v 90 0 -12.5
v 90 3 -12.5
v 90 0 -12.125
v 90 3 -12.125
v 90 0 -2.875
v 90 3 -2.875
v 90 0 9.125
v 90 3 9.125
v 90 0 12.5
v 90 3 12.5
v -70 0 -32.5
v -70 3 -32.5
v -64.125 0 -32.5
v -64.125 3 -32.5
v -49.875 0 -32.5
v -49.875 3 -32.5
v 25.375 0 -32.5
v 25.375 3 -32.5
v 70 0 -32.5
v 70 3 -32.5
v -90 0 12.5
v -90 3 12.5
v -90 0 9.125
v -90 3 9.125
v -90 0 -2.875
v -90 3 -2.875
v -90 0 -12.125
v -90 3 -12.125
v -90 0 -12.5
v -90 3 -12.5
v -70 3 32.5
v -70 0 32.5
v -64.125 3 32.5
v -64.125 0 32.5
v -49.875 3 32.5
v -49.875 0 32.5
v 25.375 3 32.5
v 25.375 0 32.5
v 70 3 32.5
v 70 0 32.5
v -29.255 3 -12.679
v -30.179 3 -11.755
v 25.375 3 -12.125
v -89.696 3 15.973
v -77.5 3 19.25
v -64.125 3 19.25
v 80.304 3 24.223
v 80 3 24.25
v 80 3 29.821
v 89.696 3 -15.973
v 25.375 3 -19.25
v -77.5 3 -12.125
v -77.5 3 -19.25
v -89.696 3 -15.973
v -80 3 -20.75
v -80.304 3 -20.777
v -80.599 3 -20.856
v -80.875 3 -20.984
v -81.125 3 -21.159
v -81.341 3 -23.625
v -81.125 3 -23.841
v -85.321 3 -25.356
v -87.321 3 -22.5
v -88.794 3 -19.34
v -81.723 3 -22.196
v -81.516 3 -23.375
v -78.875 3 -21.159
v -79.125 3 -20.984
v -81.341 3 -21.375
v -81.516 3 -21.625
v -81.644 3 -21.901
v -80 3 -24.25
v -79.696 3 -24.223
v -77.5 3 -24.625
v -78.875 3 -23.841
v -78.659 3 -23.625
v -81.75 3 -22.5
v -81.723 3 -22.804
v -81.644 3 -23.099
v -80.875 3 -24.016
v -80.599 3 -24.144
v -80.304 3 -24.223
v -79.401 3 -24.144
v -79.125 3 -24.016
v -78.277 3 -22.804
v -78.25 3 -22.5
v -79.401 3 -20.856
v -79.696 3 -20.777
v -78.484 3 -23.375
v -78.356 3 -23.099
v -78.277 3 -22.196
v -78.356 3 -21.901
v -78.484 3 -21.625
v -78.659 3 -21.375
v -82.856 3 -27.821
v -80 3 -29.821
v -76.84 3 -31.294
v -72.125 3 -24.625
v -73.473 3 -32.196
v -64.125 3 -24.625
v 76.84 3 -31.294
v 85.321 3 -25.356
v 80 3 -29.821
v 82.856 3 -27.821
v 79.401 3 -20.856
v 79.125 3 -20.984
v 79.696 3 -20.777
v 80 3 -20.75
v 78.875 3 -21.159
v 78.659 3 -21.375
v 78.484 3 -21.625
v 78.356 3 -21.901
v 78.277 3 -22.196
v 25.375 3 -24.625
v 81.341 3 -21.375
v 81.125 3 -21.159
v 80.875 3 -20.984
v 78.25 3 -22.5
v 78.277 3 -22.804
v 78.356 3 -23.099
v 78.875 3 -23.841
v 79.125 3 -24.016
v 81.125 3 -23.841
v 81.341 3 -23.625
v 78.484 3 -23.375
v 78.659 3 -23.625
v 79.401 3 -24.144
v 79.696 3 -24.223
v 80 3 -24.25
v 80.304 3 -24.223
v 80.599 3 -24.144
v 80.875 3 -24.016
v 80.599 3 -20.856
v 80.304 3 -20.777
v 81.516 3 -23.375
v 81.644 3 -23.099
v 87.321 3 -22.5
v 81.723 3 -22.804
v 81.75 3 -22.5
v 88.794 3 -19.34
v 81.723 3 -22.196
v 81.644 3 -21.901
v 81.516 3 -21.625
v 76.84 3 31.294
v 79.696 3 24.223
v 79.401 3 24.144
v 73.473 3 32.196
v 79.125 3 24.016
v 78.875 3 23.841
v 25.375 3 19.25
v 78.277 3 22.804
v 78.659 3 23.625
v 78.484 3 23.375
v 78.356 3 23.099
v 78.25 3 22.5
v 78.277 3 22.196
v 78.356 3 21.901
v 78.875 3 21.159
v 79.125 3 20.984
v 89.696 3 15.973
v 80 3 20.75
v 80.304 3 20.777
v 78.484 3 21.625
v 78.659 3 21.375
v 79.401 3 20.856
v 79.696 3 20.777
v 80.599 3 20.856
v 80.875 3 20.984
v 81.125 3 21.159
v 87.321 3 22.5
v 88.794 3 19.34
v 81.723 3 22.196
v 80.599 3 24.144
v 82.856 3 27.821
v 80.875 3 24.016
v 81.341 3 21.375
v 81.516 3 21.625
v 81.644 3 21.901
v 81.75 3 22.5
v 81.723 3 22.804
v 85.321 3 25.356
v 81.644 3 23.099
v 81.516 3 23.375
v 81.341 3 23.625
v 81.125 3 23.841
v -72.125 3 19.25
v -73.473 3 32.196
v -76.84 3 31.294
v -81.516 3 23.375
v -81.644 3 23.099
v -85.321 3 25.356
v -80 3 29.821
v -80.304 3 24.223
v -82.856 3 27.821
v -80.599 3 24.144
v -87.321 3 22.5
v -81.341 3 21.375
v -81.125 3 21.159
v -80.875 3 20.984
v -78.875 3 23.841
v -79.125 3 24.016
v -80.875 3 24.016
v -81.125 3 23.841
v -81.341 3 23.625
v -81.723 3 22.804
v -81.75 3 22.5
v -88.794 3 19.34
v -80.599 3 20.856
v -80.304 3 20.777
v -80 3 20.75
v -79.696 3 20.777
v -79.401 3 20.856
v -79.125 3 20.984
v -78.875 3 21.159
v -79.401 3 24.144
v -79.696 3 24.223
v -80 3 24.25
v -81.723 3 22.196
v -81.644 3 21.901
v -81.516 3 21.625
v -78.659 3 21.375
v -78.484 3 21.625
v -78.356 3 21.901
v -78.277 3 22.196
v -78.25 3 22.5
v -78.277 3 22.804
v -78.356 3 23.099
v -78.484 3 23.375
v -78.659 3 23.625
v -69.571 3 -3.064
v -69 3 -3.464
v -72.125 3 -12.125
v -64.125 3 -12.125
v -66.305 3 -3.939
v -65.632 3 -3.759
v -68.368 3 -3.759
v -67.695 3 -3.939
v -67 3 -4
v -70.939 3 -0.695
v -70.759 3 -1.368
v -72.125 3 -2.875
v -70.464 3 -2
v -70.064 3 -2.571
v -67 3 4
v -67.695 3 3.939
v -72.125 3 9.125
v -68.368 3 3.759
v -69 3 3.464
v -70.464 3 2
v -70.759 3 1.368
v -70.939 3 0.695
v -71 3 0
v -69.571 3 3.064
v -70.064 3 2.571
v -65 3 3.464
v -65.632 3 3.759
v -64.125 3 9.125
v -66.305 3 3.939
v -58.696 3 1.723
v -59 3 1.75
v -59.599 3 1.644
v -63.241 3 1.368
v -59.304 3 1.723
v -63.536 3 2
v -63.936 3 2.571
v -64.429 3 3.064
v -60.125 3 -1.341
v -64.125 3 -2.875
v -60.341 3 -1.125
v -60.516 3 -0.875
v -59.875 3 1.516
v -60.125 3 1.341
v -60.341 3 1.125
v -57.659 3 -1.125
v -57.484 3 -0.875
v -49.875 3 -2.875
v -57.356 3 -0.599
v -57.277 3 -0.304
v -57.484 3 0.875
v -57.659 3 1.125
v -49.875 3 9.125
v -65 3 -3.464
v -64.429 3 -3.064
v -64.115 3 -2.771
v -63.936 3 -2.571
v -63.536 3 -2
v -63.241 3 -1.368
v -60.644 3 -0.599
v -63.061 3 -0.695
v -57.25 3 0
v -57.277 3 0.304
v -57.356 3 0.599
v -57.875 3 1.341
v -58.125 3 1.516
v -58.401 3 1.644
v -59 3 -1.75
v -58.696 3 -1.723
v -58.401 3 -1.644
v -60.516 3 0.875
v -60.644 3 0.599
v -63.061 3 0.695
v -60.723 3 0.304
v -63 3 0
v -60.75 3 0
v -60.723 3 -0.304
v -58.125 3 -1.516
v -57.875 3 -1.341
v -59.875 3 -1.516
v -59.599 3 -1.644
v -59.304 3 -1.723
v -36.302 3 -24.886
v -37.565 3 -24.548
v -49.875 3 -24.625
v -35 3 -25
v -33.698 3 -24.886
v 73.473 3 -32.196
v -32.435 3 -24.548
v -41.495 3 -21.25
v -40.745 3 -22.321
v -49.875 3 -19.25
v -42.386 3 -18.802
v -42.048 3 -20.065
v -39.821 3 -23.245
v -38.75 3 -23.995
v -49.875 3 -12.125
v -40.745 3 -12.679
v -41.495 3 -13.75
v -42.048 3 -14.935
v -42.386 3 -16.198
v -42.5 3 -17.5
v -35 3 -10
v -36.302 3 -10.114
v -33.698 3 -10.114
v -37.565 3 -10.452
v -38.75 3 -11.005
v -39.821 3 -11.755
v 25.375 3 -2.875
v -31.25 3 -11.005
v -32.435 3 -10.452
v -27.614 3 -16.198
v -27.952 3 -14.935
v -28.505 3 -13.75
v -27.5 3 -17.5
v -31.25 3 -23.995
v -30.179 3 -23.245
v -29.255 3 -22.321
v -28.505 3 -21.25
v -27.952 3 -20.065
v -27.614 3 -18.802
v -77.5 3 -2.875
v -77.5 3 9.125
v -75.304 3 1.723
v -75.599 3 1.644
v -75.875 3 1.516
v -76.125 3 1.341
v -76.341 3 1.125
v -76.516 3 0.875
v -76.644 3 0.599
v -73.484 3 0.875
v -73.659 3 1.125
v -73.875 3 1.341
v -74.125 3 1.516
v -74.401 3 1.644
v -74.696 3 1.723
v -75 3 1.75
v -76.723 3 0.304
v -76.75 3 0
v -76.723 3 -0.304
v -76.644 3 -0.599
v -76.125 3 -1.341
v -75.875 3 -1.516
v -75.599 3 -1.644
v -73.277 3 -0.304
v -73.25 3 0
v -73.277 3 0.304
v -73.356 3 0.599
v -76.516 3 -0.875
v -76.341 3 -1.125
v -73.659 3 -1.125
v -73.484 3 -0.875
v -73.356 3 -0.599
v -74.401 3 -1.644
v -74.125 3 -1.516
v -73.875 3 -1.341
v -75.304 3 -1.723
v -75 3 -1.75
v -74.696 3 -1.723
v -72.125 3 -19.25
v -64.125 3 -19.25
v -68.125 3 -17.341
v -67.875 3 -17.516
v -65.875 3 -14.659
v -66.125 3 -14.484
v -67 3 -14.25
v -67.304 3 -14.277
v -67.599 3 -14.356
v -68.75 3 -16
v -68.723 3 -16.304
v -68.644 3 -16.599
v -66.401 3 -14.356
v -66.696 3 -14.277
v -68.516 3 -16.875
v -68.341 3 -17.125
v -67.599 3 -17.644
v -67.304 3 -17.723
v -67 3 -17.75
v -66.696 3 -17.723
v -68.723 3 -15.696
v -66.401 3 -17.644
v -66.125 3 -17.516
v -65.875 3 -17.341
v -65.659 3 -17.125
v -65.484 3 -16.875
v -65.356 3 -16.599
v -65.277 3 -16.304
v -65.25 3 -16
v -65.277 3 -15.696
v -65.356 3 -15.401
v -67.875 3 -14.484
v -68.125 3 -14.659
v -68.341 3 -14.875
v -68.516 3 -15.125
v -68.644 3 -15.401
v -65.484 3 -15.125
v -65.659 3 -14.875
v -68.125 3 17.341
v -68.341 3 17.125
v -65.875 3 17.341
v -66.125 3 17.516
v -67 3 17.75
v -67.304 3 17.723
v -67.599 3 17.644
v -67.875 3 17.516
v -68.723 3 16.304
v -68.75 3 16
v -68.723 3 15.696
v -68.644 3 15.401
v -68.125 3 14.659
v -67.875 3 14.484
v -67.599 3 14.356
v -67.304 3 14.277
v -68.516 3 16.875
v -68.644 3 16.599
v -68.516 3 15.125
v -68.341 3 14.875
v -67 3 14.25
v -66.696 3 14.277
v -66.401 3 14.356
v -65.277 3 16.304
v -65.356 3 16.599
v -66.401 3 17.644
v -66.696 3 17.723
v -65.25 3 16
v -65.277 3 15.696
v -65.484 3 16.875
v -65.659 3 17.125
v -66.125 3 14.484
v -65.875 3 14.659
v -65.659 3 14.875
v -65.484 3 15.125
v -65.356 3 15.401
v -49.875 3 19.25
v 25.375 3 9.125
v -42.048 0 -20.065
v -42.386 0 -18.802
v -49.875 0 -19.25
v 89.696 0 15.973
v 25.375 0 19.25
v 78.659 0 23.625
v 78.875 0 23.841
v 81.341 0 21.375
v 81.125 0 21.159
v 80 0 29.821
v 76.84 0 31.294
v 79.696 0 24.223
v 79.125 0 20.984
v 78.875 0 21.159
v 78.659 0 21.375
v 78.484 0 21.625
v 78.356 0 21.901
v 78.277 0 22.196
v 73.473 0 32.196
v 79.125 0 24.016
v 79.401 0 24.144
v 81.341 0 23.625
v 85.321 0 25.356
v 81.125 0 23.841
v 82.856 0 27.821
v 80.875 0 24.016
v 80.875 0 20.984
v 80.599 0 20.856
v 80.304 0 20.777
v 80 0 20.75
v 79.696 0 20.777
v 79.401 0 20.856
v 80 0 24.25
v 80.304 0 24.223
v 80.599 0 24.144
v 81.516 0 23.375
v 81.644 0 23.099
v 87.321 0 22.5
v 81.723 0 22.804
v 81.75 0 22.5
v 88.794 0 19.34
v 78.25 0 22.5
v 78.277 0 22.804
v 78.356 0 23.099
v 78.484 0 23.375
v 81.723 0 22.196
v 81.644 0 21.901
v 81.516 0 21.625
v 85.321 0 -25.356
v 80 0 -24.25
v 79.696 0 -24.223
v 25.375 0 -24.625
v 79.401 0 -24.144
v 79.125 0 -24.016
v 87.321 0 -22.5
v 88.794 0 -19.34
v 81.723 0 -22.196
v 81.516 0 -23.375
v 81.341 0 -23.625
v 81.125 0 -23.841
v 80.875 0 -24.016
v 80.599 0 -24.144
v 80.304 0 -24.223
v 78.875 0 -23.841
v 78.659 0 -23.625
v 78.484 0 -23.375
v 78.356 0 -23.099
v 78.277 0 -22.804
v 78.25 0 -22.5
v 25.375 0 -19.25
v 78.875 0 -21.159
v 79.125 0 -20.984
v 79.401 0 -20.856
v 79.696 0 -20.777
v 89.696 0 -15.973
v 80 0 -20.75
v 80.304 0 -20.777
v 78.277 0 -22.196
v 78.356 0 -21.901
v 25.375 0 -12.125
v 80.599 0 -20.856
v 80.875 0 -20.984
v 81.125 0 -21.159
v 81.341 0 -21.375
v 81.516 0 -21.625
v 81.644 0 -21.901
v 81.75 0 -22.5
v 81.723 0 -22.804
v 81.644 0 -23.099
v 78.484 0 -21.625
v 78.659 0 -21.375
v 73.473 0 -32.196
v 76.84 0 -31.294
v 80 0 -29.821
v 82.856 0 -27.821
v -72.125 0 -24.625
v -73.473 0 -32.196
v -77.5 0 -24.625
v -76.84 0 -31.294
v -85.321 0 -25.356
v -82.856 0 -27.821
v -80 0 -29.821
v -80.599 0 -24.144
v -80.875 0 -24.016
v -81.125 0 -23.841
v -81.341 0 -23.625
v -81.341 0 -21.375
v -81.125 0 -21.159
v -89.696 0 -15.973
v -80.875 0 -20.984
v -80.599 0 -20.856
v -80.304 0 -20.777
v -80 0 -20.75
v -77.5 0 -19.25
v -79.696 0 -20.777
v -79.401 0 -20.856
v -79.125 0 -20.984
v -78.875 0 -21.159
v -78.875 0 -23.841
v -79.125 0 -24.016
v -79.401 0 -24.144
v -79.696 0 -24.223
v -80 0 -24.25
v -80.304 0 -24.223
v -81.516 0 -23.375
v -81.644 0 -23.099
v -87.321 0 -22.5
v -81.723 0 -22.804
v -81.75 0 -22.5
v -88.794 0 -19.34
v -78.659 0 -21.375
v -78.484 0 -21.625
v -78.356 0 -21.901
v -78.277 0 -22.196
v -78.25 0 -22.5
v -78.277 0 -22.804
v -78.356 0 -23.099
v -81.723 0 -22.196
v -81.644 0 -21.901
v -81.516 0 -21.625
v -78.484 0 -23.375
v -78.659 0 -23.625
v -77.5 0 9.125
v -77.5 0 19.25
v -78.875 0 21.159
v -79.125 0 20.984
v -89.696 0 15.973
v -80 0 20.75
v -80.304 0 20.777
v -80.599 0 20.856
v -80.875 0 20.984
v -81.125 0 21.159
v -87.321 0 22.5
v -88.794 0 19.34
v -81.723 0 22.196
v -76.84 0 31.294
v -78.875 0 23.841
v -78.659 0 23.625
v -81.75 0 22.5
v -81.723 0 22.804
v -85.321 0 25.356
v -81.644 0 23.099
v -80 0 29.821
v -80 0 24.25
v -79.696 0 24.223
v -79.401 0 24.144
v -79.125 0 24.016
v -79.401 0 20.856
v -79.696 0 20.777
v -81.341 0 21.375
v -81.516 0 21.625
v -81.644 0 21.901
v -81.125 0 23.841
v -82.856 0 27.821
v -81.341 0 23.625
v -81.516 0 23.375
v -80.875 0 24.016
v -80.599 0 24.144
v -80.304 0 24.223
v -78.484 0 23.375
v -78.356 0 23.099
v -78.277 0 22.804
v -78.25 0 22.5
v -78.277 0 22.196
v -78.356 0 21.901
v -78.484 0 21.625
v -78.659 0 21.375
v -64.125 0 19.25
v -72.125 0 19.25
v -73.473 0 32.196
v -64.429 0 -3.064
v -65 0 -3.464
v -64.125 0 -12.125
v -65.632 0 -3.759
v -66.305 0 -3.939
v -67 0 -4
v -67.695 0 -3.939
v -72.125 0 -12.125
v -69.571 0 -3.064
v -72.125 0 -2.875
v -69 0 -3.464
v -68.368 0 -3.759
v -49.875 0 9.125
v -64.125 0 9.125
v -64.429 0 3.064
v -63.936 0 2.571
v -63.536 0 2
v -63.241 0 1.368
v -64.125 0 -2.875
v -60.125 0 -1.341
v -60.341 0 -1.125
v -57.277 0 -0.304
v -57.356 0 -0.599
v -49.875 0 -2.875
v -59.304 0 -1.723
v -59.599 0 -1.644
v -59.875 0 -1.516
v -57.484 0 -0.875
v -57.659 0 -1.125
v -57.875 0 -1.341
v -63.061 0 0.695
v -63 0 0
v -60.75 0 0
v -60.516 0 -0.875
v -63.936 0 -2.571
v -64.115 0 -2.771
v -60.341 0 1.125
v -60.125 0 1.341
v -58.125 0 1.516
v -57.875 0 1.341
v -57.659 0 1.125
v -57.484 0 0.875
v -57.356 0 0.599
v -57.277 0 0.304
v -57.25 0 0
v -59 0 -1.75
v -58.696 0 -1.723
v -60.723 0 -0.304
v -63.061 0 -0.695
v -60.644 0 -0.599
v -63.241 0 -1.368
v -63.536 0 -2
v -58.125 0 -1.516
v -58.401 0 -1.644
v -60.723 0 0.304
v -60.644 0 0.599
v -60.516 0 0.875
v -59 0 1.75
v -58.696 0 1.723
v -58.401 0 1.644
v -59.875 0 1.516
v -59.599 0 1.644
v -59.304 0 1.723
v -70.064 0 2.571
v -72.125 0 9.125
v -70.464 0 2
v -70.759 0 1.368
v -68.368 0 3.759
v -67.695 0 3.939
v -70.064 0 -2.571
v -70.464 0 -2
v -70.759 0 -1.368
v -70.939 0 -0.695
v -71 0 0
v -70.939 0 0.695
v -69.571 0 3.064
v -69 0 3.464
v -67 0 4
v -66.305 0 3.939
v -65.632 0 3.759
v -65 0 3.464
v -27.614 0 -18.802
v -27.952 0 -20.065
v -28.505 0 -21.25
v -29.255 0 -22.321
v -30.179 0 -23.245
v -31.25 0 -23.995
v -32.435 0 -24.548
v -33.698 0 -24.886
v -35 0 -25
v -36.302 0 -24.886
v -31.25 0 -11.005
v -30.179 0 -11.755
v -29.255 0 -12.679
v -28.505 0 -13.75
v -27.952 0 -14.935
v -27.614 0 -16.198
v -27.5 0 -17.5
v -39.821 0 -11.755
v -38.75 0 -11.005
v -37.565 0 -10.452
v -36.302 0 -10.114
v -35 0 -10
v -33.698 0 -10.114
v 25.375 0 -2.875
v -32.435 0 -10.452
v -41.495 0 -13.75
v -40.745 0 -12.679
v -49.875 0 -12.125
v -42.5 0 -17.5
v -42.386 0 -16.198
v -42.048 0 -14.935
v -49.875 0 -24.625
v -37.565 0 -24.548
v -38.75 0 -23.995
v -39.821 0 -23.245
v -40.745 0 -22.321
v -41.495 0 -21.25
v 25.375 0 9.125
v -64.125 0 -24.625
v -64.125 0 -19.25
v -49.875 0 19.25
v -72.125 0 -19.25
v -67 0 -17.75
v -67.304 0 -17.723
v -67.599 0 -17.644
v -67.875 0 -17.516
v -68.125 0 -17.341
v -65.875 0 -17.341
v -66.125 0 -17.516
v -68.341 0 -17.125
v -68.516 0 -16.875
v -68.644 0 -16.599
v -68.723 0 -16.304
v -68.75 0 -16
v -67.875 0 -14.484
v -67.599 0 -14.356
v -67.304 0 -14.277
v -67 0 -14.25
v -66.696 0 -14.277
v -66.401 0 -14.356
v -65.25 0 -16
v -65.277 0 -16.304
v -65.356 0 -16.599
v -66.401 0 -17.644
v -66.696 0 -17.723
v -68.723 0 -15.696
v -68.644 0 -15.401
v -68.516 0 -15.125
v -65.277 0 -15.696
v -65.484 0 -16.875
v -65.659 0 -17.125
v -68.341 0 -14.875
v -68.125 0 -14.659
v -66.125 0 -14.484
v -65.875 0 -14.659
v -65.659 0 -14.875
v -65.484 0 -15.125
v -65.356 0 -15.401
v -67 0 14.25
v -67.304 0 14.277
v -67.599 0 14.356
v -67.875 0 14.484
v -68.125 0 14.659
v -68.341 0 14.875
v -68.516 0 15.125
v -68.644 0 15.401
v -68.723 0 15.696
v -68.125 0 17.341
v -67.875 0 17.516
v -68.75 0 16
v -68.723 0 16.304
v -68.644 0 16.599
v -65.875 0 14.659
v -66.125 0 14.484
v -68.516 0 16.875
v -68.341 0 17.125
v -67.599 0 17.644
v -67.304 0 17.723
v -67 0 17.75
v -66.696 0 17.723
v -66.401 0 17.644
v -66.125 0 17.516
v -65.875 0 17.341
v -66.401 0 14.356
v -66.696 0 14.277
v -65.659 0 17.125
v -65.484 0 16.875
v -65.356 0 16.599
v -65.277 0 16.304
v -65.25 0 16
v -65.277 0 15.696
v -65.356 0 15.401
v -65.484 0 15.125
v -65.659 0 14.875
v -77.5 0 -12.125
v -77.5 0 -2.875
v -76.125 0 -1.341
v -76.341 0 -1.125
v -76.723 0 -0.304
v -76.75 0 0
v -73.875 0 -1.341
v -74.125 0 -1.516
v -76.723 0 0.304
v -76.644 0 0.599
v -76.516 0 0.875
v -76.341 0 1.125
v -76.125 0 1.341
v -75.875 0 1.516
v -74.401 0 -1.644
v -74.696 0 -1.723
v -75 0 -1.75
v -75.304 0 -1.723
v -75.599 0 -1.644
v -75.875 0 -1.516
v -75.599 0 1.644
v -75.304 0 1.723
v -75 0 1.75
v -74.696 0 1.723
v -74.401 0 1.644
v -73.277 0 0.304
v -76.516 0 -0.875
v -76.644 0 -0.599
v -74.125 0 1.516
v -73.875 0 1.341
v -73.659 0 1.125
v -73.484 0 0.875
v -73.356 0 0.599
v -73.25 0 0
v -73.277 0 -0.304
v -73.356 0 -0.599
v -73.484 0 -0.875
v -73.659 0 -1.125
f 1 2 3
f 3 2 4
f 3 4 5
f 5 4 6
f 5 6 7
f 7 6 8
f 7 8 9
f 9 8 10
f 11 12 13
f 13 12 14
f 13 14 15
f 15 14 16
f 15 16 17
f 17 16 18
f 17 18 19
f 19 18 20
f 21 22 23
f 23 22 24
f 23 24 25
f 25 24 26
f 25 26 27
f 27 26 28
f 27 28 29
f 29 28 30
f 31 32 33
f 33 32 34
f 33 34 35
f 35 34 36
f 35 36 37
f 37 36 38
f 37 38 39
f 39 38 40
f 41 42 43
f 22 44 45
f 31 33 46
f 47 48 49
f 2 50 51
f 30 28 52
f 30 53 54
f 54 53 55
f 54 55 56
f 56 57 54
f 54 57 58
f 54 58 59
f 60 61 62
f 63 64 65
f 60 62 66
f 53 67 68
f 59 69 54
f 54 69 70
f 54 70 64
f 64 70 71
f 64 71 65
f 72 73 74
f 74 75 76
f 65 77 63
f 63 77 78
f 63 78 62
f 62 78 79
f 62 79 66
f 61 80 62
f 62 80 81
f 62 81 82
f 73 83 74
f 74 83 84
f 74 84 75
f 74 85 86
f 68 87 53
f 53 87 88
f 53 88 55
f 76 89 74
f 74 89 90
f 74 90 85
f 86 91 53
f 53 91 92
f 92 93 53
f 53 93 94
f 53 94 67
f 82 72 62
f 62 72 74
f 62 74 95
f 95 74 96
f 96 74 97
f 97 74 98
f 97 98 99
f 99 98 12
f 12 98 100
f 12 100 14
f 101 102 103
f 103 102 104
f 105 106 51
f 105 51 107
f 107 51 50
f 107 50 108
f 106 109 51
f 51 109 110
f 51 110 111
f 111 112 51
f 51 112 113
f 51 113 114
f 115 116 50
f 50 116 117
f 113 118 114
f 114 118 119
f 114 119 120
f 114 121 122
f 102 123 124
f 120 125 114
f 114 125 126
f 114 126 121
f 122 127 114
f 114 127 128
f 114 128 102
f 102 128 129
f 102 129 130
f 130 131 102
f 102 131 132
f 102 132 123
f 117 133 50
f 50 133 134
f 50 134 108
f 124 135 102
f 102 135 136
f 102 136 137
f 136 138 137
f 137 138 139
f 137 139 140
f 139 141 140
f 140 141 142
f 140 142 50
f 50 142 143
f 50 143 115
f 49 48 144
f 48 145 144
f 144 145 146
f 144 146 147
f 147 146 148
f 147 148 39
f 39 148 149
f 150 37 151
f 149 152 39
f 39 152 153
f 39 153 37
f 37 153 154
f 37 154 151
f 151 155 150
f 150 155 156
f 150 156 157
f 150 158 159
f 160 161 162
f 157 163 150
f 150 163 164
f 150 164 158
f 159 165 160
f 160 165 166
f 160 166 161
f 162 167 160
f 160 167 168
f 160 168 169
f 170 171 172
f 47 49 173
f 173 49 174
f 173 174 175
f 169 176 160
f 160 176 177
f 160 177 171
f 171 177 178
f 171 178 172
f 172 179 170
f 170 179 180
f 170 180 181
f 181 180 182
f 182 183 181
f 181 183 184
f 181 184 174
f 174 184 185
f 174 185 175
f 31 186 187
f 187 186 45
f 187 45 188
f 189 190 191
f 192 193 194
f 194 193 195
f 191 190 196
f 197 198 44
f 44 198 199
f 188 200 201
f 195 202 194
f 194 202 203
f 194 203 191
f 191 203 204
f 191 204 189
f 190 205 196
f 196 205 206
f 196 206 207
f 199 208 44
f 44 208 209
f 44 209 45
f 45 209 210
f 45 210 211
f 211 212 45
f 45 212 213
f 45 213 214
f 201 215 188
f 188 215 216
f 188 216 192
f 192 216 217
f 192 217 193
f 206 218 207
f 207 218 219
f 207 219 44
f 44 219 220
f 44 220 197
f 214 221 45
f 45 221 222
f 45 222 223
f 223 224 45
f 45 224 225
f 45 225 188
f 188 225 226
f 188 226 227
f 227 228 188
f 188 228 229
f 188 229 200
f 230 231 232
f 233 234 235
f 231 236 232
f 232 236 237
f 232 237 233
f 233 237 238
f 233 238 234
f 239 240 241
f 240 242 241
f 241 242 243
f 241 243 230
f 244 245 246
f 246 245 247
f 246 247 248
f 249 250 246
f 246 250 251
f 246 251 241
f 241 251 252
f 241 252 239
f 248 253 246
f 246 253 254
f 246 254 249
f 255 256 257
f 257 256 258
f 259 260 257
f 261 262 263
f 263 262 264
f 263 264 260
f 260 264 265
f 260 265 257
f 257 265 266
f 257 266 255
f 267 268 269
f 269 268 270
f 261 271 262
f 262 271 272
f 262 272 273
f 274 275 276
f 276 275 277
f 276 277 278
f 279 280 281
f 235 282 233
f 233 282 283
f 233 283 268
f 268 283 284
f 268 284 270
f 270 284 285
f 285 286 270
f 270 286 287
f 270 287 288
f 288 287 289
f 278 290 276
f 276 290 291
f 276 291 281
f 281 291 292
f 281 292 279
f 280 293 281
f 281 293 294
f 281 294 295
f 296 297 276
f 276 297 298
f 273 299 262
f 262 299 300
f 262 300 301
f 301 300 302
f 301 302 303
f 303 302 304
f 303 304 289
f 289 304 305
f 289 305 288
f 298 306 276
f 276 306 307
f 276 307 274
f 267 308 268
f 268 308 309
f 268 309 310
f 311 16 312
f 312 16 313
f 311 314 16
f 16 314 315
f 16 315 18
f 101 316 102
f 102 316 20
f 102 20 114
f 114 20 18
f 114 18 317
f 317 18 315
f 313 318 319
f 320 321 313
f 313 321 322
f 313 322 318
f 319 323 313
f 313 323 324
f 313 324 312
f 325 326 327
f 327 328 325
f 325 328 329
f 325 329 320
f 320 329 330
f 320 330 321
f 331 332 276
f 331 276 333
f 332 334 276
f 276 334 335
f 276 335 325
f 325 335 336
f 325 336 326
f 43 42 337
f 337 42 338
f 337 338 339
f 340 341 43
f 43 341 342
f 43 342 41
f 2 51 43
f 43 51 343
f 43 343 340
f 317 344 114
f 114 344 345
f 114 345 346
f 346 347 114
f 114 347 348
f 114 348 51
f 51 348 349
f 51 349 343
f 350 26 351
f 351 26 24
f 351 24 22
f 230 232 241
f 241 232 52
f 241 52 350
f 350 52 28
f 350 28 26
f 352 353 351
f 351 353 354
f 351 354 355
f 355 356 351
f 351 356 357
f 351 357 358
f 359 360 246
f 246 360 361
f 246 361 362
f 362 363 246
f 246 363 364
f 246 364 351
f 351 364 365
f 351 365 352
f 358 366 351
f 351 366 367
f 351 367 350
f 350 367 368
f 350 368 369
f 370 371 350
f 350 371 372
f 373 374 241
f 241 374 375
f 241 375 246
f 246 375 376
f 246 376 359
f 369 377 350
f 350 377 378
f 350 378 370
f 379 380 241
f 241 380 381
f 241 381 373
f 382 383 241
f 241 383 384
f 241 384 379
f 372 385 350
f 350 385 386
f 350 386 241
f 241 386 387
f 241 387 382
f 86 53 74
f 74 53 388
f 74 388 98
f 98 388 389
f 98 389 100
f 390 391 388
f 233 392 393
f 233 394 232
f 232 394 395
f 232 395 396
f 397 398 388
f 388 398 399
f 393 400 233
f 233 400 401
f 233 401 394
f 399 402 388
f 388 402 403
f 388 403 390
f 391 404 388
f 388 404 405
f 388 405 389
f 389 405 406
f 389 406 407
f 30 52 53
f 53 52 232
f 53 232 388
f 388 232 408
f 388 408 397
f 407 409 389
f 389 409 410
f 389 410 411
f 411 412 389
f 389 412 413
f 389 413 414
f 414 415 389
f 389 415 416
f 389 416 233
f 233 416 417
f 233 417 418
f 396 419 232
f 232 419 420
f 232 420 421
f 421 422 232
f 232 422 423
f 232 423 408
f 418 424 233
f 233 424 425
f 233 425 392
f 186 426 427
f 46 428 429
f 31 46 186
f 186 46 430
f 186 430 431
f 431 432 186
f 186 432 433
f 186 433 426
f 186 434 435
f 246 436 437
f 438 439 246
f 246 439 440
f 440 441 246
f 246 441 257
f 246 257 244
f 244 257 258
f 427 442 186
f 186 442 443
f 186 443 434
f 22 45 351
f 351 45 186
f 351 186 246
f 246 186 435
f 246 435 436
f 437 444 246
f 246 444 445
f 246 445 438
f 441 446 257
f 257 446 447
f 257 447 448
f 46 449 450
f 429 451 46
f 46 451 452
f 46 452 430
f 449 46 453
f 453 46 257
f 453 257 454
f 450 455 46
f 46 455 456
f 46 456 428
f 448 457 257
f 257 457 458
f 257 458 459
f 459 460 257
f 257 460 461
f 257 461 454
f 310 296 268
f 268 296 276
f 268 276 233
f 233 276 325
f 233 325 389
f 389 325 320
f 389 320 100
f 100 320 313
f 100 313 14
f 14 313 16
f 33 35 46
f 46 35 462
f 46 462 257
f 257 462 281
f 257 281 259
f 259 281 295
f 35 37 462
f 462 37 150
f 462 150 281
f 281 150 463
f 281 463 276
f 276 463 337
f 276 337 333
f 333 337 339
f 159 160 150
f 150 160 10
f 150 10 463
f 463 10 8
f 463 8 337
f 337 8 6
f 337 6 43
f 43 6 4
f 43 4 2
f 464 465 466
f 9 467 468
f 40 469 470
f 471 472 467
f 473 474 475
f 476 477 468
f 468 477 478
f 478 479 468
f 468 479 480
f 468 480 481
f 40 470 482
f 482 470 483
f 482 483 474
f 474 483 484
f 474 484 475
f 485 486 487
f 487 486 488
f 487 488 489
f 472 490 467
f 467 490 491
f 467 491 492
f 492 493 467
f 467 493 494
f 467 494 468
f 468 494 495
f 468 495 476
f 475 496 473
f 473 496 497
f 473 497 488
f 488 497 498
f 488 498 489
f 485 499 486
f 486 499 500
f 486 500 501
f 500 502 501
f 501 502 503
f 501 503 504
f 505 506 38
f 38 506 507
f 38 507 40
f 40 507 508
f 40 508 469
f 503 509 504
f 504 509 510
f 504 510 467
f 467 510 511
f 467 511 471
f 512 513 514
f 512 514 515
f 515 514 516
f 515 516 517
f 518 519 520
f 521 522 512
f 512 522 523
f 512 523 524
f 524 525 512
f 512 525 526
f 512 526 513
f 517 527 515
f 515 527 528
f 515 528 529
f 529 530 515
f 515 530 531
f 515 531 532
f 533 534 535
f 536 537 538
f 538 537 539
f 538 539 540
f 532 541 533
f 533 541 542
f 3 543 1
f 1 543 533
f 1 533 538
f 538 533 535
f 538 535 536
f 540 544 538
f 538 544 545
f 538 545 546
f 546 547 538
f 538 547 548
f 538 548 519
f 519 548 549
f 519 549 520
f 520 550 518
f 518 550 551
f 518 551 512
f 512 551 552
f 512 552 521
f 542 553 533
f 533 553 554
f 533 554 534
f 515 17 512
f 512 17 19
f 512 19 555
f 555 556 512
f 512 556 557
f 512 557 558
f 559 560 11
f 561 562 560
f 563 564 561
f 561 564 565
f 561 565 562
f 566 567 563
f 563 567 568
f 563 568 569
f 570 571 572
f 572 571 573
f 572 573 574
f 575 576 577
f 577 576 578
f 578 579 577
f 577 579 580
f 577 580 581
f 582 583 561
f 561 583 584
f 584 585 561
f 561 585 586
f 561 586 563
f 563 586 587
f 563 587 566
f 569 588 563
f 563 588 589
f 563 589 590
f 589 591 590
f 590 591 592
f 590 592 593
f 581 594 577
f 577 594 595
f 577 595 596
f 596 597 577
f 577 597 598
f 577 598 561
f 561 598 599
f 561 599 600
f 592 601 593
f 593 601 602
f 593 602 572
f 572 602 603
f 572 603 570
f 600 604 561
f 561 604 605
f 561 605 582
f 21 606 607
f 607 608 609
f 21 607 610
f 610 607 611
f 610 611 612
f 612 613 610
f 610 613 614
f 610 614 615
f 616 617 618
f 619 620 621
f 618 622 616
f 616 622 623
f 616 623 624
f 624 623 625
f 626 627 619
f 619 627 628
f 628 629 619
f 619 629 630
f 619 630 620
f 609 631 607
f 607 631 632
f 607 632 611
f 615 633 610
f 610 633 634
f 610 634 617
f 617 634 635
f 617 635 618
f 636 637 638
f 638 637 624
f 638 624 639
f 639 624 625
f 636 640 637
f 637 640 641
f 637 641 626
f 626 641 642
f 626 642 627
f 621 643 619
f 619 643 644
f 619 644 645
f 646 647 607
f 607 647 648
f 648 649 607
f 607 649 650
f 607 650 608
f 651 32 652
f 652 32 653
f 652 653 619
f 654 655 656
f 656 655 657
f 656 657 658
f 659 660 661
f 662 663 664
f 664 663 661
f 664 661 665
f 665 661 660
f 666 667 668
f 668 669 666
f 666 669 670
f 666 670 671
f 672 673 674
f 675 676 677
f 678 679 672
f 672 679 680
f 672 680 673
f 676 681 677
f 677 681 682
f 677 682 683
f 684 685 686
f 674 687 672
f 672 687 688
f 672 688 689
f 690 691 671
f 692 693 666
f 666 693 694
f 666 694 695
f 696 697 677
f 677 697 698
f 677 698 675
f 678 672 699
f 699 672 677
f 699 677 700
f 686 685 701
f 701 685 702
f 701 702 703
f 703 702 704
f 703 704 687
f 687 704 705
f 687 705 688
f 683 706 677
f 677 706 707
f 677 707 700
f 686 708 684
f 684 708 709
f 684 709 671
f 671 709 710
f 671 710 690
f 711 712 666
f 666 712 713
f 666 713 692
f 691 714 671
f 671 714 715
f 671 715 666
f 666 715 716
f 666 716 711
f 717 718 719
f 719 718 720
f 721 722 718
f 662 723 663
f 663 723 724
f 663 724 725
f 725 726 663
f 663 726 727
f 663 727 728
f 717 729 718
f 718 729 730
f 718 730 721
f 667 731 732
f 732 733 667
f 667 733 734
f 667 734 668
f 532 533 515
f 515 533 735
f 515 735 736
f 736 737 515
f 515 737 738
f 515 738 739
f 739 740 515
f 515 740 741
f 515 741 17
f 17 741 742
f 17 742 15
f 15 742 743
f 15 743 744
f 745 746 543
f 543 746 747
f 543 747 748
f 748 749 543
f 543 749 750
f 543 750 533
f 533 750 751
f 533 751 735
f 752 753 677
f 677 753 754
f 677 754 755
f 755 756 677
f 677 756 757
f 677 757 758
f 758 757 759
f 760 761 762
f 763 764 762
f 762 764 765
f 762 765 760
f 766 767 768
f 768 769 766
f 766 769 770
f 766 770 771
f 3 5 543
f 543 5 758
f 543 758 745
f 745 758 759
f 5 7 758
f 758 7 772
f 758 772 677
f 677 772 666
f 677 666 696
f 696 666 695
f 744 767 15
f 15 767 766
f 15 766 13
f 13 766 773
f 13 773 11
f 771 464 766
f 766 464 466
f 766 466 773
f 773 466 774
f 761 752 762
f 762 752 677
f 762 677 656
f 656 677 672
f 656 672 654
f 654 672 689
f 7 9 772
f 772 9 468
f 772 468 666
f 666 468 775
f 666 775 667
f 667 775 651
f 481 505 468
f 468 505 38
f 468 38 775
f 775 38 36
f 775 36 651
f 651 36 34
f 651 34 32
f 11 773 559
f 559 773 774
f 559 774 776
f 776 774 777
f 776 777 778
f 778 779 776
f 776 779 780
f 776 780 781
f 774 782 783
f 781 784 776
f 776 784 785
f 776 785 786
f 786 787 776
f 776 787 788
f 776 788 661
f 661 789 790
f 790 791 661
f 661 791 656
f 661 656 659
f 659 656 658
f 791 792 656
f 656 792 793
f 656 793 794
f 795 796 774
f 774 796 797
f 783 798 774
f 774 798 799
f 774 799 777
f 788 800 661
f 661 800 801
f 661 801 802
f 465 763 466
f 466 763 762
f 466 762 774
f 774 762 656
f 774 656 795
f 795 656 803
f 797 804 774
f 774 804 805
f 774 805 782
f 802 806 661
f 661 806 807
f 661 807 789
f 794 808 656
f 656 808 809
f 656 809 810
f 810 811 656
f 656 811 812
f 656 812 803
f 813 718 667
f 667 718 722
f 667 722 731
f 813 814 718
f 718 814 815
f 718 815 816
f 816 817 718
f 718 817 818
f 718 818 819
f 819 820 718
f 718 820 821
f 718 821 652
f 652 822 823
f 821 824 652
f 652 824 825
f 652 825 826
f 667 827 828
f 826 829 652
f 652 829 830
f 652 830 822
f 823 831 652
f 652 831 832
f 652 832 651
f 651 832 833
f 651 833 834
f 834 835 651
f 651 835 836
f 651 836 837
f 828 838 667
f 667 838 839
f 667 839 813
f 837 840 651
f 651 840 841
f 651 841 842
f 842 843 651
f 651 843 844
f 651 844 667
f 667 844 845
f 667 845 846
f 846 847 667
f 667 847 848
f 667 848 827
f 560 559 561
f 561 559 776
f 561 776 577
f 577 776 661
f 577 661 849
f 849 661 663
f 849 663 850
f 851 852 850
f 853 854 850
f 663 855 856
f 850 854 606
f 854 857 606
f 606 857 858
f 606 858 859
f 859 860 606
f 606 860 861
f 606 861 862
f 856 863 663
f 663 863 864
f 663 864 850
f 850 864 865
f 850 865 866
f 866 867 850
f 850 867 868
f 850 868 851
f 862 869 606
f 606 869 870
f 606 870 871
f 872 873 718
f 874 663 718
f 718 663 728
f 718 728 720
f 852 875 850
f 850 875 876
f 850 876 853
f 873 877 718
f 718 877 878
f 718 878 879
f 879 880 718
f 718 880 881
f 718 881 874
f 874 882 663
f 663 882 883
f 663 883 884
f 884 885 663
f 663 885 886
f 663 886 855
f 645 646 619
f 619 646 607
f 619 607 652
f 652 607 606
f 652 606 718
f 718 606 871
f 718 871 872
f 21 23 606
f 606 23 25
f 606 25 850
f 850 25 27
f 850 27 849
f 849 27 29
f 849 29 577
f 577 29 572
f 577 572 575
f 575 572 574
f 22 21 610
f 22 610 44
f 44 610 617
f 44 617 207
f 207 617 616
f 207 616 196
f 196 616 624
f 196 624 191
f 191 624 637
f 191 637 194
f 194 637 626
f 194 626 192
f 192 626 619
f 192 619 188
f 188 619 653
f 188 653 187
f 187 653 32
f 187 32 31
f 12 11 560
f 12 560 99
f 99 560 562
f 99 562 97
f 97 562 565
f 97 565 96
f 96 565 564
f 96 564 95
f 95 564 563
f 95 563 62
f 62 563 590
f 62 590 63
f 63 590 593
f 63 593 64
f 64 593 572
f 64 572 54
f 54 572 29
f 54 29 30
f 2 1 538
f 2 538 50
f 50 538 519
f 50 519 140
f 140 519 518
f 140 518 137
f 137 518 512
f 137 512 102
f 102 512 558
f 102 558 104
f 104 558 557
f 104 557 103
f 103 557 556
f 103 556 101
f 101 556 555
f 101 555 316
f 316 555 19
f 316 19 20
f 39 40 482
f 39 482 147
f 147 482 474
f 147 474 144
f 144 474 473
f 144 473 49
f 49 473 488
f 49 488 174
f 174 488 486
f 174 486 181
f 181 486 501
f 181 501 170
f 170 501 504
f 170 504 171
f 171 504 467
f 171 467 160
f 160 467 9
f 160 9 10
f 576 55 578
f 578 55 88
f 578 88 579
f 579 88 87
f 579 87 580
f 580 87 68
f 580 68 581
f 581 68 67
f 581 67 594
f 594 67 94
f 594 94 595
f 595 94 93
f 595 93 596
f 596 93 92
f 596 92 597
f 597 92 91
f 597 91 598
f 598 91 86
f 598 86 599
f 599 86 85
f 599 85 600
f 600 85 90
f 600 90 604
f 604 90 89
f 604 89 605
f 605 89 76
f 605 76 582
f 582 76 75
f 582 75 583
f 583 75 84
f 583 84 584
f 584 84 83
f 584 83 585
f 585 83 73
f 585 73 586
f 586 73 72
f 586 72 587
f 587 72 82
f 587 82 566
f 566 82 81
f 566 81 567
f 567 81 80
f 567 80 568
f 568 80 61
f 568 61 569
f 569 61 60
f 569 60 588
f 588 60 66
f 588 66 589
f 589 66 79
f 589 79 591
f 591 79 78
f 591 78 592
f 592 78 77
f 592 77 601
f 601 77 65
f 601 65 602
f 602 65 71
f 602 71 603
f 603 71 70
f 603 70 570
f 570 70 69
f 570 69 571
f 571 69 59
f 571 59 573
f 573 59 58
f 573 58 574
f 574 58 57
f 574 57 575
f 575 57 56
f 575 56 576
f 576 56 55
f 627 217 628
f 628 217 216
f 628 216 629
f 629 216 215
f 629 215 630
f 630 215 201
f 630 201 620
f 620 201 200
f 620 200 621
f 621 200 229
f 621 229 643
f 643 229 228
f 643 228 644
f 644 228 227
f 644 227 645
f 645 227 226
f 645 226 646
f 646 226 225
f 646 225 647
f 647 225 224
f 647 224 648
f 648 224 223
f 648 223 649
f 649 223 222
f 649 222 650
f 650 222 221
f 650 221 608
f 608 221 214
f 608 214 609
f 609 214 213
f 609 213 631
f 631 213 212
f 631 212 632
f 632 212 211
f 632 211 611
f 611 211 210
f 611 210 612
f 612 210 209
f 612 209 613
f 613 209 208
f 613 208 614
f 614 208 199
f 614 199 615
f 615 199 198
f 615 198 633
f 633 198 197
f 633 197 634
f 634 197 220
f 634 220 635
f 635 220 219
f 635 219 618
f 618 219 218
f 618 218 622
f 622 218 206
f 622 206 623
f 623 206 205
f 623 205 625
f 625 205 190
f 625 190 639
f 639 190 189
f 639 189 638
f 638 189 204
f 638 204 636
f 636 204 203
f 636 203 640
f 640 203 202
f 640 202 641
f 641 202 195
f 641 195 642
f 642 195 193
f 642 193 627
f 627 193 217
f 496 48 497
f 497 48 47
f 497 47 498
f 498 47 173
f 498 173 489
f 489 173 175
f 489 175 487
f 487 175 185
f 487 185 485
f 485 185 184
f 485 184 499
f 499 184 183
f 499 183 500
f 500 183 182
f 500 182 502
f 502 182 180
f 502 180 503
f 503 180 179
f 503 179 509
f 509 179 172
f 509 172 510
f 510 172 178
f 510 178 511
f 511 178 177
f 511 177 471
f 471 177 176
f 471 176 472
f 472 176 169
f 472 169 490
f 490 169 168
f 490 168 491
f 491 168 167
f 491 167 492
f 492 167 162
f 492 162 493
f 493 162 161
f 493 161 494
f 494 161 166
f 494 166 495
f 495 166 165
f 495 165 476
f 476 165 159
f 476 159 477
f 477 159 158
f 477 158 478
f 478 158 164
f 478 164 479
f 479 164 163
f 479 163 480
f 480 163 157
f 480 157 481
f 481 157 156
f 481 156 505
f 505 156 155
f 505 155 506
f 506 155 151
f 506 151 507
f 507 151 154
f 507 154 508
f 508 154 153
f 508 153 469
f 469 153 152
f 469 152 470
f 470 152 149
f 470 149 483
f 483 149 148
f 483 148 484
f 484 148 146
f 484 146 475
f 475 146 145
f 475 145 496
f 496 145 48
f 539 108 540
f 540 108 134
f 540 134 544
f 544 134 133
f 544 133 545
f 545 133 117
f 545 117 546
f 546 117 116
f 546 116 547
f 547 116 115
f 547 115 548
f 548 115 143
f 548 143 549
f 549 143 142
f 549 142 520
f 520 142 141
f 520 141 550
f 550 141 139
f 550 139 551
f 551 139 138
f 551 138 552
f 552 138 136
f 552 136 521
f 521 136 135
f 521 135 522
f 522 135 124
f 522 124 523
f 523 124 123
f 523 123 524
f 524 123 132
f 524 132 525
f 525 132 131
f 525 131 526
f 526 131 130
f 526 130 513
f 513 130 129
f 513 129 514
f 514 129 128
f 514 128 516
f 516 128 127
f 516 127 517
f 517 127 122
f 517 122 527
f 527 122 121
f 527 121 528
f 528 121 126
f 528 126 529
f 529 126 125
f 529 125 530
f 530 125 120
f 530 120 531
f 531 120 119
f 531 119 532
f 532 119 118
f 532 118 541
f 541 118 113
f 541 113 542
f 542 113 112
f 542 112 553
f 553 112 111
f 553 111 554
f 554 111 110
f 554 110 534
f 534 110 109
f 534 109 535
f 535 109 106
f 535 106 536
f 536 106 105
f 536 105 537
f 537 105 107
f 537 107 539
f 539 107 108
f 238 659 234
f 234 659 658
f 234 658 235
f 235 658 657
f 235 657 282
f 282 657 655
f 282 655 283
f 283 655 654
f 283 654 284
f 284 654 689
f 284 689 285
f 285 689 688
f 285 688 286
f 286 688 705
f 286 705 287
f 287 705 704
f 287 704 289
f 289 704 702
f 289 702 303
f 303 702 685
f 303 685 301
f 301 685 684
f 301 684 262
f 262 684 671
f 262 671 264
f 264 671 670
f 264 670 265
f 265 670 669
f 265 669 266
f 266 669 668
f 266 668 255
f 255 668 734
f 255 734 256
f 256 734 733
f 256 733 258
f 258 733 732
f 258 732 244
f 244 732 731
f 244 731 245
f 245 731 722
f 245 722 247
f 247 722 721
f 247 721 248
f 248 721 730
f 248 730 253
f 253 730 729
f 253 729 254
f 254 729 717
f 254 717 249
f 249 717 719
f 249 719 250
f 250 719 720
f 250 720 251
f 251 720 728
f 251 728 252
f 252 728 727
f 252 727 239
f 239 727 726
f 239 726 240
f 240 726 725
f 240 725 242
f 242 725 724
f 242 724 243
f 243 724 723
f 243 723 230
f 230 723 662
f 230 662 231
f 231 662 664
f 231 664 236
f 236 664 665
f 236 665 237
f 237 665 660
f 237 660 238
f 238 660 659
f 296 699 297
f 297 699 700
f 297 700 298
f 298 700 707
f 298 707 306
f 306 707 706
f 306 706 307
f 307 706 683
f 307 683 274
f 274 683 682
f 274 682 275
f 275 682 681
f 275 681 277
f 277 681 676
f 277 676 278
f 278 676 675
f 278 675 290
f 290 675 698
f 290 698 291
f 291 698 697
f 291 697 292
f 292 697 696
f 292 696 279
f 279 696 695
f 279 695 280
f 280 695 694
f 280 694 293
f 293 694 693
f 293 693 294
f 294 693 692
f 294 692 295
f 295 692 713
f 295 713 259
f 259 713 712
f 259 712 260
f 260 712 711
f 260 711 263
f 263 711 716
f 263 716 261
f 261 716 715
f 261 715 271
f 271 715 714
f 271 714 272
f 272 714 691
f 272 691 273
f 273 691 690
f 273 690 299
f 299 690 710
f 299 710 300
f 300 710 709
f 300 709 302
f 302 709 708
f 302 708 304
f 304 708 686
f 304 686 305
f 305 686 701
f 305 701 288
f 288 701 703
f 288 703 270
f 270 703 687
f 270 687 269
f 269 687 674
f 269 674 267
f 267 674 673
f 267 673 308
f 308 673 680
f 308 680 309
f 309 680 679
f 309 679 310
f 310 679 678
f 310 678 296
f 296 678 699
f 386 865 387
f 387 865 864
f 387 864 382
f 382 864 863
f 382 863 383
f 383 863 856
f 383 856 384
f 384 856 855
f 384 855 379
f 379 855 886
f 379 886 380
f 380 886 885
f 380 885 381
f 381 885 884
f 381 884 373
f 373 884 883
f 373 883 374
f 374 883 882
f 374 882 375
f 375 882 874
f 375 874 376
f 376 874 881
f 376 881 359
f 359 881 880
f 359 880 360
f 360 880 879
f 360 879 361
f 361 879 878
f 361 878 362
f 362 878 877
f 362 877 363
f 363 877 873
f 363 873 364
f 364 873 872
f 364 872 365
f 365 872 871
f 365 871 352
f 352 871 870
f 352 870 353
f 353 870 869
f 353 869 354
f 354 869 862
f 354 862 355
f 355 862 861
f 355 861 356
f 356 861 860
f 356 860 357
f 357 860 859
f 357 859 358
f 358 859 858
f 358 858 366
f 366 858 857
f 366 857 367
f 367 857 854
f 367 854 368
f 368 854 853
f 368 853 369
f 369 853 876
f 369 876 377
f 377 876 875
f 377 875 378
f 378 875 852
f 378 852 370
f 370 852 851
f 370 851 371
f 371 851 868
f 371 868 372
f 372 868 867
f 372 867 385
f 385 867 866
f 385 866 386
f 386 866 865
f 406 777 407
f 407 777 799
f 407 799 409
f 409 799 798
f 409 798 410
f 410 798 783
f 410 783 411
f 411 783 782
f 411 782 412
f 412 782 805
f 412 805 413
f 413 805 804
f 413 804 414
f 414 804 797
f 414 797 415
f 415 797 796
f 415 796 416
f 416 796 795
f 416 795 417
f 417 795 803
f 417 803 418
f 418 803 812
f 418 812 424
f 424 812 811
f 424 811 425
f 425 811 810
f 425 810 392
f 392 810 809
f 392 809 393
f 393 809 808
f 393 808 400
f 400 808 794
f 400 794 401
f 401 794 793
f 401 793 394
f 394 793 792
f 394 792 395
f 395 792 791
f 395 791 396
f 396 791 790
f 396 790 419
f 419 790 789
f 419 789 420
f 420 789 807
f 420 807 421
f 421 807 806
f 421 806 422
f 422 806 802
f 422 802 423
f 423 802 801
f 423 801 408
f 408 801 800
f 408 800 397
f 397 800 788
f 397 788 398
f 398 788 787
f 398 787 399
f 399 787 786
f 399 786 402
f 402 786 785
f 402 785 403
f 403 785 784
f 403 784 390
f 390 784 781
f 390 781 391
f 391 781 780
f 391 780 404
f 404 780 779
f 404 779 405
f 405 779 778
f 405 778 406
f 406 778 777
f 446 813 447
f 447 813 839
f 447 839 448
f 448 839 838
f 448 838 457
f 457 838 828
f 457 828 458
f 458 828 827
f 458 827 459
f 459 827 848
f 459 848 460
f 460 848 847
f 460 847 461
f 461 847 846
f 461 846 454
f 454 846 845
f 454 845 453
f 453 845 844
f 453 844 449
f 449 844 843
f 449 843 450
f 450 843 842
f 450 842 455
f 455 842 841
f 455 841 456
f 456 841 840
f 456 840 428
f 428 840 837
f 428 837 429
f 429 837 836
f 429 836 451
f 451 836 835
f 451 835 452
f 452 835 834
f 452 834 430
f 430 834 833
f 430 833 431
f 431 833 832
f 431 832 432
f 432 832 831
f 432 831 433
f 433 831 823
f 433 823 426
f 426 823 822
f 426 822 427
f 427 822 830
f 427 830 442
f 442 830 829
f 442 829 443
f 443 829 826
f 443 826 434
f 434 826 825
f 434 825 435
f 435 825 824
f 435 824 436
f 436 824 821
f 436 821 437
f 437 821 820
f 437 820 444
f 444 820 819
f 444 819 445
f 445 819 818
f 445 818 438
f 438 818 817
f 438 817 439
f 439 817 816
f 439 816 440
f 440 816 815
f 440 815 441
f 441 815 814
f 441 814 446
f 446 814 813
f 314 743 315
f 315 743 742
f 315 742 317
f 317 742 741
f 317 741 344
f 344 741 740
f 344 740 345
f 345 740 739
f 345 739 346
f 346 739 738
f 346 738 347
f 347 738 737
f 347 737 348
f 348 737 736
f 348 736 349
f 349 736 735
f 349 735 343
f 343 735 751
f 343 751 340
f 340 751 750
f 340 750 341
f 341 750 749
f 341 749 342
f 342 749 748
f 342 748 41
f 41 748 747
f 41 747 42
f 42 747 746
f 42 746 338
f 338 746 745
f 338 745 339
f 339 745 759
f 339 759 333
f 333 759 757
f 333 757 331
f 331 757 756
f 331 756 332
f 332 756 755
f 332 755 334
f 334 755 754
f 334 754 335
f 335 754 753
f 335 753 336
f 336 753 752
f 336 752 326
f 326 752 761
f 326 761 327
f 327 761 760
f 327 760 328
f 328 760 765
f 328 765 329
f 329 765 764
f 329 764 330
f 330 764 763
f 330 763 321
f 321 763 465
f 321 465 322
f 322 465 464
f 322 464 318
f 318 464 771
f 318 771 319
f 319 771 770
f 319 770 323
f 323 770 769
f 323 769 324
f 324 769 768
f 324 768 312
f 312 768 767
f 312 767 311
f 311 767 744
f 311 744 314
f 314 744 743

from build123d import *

# Parameters (mm, degrees)
CROQUIS1_W              = 180
CROQUIS1_H              = 65
SALIENTE_EXTRUIR1_DEPTH = 3
REDONDEO1_R             = 20
CROQUIS2_R              = 1.75
CORTAR_EXTRUIR1_DEPTH   = 3
CROQUIS3_R              = 1.75
CROQUIS3_R_2            = 4
CORTAR_EXTRUIR2_DEPTH   = 3
CROQUIS4_R              = 7.5
CORTAR_EXTRUIR3_DEPTH   = 200


with BuildPart() as part:
    # Croquis1 → Saliente-Extruir1 (new body)
    with BuildSketch(Plane(origin=(0, 0, 0), x_dir=(1, 0, 0), z_dir=(0, 1, 0))):
        Rectangle(CROQUIS1_W, CROQUIS1_H)
    extrude(amount=SALIENTE_EXTRUIR1_DEPTH)

    # Redondeo1
    redondeo1_edges = [part.edges().sort_by_distance(p)[0] for p in [
        (90, 1.5, 32.5),
        (-90, 1.5, 32.5),
        (-90, 1.5, -32.5),
        (90, 1.5, -32.5),
    ]]
    fillet(redondeo1_edges, radius=REDONDEO1_R)

    # Croquis2 → Cortar-Extruir1 (cut)
    with BuildSketch(Plane(origin=(0, 3, 0), x_dir=(1, 0, 0), z_dir=(0, 1, 0))):
        with Locations(Location((-80, 22.5, 0), (0, 0, 270))):
            Circle(CROQUIS2_R)
        with Locations(Location((-80, -22.5, 0), (0, 0, 270))):
            Circle(CROQUIS2_R)
        with Locations(Location((80, -22.5, 0), (0, 0, 270))):
            Circle(CROQUIS2_R)
        with Locations(Location((80, 22.5, 0), (0, 0, 270))):
            Circle(CROQUIS2_R)
    extrude(amount=-CORTAR_EXTRUIR1_DEPTH, mode=Mode.SUBTRACT)

    # Croquis3 → Cortar-Extruir2 (cut)
    with BuildSketch(Plane.XZ):
        with Locations(Location((-67, 16, 0), (0, 0, 270))):
            Circle(CROQUIS3_R)
        with Locations(Location((-59, 0, 0), (0, 0, 270))):
            Circle(CROQUIS3_R)
        with Locations(Location((-67, -16, 0), (0, 0, 270))):
            Circle(CROQUIS3_R)
        with Locations(Location((-67, 0, 0), (0, 0, 270))):
            Circle(CROQUIS3_R_2)
        with Locations(Location((-75, 0, 0), (0, 0, 270))):
            Circle(CROQUIS3_R)
    extrude(amount=-CORTAR_EXTRUIR2_DEPTH, mode=Mode.SUBTRACT)

    # Croquis4 → Cortar-Extruir3 (cut)
    with BuildSketch(Plane.XZ):
        with Locations(Location((-35, -17.5, 0), (0, 0, 270))):
            Circle(CROQUIS4_R)
    extrude(amount=-CORTAR_EXTRUIR3_DEPTH, mode=Mode.SUBTRACT)


solid = part.part
